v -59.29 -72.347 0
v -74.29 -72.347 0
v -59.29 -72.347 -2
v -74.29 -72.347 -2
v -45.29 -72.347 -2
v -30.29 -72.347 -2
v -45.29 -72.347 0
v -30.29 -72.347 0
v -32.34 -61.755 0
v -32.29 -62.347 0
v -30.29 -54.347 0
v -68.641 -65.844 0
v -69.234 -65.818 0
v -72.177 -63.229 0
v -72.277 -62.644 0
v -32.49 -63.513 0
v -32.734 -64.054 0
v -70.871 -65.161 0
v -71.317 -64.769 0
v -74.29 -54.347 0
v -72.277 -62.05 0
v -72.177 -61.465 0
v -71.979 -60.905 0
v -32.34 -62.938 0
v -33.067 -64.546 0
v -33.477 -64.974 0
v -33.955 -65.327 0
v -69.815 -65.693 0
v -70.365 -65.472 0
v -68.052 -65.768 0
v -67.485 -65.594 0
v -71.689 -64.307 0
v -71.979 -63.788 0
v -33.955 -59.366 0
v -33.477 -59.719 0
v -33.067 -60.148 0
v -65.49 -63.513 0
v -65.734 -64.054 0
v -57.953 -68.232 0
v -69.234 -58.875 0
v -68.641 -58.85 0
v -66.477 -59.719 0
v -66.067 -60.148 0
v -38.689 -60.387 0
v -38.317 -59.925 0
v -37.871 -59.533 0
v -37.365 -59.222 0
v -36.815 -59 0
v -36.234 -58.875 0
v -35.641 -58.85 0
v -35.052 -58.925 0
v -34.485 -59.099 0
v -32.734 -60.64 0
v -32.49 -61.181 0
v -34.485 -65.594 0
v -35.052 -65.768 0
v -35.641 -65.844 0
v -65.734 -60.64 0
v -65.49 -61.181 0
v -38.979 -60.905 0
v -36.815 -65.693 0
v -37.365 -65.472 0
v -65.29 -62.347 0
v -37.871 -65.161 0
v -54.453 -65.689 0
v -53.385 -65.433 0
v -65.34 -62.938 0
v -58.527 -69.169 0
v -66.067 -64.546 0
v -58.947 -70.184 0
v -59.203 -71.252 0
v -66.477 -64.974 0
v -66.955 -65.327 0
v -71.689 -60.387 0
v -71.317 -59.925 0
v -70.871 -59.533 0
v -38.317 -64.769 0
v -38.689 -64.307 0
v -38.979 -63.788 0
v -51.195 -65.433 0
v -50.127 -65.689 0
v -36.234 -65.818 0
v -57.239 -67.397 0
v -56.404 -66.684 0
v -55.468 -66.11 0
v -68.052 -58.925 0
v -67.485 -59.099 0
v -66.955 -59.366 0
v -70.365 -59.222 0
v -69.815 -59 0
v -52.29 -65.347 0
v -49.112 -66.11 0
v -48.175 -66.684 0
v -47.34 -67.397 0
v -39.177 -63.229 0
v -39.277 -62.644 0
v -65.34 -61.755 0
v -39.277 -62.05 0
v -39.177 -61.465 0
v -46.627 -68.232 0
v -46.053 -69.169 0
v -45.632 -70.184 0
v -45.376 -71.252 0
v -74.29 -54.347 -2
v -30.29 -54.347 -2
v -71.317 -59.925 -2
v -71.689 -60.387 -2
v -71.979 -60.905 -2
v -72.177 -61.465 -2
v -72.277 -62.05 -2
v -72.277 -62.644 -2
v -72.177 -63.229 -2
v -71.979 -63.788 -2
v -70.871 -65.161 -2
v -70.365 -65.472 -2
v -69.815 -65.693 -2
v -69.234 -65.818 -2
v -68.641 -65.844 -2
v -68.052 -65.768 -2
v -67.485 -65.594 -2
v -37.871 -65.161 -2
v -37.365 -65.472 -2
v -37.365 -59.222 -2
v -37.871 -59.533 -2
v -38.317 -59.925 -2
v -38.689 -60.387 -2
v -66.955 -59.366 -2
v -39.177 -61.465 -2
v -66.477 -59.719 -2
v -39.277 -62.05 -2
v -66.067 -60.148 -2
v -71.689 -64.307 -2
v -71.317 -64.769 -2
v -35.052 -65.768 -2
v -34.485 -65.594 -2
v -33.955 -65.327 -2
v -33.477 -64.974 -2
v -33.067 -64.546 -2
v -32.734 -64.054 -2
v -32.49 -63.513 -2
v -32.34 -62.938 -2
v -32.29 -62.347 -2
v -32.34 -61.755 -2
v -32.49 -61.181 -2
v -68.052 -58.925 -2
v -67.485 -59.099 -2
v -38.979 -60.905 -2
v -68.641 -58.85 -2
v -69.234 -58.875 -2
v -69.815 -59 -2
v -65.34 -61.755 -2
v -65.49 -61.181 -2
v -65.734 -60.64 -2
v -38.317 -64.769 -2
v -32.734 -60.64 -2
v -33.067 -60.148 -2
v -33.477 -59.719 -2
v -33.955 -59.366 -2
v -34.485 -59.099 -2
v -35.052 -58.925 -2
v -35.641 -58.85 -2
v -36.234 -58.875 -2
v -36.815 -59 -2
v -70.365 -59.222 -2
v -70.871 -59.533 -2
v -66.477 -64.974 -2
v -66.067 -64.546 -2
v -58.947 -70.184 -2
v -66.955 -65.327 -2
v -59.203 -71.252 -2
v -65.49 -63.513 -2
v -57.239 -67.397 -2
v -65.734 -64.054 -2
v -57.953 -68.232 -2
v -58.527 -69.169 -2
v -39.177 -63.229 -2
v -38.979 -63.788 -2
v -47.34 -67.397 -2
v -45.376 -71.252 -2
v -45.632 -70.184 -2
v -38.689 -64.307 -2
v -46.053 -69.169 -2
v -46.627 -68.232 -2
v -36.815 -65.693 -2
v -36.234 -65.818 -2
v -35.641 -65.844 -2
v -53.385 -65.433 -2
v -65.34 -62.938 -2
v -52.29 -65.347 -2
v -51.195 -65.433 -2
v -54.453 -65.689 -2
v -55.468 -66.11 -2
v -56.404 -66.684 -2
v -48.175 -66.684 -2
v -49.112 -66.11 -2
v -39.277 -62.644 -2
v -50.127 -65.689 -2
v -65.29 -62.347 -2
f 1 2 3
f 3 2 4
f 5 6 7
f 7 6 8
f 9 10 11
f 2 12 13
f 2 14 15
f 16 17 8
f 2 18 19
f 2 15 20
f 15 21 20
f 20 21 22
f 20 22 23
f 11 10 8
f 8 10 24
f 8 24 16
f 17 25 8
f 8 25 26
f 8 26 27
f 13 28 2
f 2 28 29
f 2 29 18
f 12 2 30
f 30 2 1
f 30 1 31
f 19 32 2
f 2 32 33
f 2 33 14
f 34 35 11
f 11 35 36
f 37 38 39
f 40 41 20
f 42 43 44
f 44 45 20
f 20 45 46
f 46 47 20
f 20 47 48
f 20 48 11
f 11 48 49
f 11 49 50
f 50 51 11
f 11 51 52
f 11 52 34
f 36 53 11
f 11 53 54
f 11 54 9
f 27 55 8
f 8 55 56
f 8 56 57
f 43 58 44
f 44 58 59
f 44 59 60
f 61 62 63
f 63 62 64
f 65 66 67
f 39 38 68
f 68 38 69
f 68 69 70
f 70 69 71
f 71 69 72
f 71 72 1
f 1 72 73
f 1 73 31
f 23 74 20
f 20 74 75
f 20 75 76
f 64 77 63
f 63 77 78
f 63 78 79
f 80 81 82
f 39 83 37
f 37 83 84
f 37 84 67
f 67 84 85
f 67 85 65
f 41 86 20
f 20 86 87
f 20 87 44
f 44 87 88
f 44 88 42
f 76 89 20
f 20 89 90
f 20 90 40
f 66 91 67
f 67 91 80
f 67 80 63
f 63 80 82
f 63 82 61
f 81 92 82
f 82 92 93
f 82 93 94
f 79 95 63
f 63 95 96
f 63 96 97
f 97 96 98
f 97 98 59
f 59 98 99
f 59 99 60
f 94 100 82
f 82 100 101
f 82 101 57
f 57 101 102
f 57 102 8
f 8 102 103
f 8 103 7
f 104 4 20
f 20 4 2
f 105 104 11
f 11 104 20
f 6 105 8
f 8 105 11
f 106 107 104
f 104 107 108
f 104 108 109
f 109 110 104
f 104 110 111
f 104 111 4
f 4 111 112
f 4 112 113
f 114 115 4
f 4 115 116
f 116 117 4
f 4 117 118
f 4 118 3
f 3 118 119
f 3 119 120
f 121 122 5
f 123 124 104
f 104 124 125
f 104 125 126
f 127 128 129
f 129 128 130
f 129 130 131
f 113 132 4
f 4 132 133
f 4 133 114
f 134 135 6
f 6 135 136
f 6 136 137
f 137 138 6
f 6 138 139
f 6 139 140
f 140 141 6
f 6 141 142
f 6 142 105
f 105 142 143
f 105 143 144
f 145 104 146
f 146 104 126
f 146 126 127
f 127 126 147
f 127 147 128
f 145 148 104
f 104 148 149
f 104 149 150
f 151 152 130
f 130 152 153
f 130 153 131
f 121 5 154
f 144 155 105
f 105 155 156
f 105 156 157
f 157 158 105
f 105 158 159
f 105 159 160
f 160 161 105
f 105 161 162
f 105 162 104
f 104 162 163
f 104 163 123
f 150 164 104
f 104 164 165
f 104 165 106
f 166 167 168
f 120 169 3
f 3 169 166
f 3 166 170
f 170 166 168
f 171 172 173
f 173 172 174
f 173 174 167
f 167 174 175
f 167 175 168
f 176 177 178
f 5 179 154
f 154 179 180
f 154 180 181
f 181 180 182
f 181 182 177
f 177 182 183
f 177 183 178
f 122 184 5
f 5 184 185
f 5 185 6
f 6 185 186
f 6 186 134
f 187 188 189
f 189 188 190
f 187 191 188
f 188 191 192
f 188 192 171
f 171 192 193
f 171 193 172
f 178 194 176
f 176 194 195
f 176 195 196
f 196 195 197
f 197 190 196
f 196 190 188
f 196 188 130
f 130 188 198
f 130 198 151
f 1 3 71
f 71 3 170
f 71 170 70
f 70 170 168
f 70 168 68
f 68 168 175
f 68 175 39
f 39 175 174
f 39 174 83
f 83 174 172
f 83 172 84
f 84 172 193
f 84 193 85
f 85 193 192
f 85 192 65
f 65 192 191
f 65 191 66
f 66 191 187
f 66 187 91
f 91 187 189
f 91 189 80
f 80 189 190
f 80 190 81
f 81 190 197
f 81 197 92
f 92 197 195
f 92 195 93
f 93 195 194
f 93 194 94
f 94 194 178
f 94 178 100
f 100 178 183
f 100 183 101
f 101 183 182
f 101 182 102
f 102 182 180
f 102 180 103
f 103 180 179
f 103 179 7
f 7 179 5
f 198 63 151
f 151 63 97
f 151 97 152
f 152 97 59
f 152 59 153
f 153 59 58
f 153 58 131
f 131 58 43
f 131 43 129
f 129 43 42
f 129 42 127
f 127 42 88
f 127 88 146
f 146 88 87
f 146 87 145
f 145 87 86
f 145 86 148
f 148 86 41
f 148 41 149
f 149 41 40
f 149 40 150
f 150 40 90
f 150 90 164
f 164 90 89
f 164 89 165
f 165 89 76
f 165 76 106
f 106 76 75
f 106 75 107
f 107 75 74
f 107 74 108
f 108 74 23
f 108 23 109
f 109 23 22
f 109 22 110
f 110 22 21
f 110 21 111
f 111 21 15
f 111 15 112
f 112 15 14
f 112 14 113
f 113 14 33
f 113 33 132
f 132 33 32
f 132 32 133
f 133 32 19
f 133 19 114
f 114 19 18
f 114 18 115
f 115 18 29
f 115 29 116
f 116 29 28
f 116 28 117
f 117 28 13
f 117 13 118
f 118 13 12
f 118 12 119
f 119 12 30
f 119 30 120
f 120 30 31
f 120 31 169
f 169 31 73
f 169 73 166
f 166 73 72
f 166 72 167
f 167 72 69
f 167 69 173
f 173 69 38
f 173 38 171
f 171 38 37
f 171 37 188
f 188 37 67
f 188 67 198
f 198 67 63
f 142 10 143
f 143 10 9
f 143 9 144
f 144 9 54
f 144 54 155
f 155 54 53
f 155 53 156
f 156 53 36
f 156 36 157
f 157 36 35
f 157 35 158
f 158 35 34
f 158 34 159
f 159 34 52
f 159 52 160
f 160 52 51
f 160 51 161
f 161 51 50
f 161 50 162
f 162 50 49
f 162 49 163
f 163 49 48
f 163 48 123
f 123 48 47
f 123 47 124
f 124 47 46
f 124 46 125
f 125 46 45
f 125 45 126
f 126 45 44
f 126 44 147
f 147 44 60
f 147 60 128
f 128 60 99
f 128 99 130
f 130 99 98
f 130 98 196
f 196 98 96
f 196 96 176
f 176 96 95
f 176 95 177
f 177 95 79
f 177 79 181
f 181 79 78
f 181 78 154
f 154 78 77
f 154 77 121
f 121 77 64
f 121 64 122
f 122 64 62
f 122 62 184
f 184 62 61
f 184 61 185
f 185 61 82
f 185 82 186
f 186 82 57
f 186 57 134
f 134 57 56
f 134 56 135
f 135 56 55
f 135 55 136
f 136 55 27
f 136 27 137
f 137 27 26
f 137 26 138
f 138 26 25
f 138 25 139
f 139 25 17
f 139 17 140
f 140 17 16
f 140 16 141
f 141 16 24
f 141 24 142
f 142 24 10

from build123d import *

# Parameters (mm, degrees)
SKETCH1_W               = 44
SKETCH1_H               = 18
BOSS_EXTRUDE1_DEPTH     = 2
CUT_EXTRUDE3_DEPTH      = 1
CUT_EXTRUDE3_DEPTH_BACK = 2
SKETCH8_R               = 3.5
CUT_EXTRUDE4_DEPTH      = 2.8
SKETCH9_R               = 3.5
CUT_EXTRUDE5_DEPTH      = 2.8


with BuildPart() as part:
    # Sketch1 → Boss-Extrude1 (new body)
    with BuildSketch(Plane.XY):
        with Locations((-52.289658906, -63.346772489)):
            Rectangle(SKETCH1_W, SKETCH1_H)
    extrude(amount=-BOSS_EXTRUDE1_DEPTH)

    # Sketch7 → Cut-Extrude3 (cut, two sides)
    with BuildSketch(Plane.XY) as cut_extrude3_sk:
        with BuildLine():
            Line((-45.289658906, -150.610965153), (-45.289658906, -72.346772489))
            ThreePointArc((-45.289658906, -72.346772489), (-52.289658906, -65.346772489), (-59.289658906, -72.346772489))
            Line((-59.289658906, -72.346772489), (-59.289658906, -150.610965153))
            Line((-59.289658906, -150.610965153), (-59.289658906, -307.13935048))
            Line((-59.289658906, -307.13935048), (-45.289658906, -307.13935048))
            Line((-45.289658906, -307.13935048), (-45.289658906, -150.610965153))
        make_face()
    extrude(amount=CUT_EXTRUDE3_DEPTH, mode=Mode.SUBTRACT)
    extrude(cut_extrude3_sk.sketch, amount=-CUT_EXTRUDE3_DEPTH_BACK, mode=Mode.SUBTRACT)

    # Sketch8 → Cut-Extrude4 (cut)
    with BuildSketch(Plane.XY):
        with Locations((-68.789658906, -62.346772489)):
            Circle(SKETCH8_R)
    extrude(amount=-CUT_EXTRUDE4_DEPTH, mode=Mode.SUBTRACT)

    # Sketch9 → Cut-Extrude5 (cut)
    with BuildSketch(Plane.XY):
        with Locations((-35.789658906, -62.346772489)):
            Circle(SKETCH9_R)
    extrude(amount=-CUT_EXTRUDE5_DEPTH, mode=Mode.SUBTRACT)


solid = part.part
